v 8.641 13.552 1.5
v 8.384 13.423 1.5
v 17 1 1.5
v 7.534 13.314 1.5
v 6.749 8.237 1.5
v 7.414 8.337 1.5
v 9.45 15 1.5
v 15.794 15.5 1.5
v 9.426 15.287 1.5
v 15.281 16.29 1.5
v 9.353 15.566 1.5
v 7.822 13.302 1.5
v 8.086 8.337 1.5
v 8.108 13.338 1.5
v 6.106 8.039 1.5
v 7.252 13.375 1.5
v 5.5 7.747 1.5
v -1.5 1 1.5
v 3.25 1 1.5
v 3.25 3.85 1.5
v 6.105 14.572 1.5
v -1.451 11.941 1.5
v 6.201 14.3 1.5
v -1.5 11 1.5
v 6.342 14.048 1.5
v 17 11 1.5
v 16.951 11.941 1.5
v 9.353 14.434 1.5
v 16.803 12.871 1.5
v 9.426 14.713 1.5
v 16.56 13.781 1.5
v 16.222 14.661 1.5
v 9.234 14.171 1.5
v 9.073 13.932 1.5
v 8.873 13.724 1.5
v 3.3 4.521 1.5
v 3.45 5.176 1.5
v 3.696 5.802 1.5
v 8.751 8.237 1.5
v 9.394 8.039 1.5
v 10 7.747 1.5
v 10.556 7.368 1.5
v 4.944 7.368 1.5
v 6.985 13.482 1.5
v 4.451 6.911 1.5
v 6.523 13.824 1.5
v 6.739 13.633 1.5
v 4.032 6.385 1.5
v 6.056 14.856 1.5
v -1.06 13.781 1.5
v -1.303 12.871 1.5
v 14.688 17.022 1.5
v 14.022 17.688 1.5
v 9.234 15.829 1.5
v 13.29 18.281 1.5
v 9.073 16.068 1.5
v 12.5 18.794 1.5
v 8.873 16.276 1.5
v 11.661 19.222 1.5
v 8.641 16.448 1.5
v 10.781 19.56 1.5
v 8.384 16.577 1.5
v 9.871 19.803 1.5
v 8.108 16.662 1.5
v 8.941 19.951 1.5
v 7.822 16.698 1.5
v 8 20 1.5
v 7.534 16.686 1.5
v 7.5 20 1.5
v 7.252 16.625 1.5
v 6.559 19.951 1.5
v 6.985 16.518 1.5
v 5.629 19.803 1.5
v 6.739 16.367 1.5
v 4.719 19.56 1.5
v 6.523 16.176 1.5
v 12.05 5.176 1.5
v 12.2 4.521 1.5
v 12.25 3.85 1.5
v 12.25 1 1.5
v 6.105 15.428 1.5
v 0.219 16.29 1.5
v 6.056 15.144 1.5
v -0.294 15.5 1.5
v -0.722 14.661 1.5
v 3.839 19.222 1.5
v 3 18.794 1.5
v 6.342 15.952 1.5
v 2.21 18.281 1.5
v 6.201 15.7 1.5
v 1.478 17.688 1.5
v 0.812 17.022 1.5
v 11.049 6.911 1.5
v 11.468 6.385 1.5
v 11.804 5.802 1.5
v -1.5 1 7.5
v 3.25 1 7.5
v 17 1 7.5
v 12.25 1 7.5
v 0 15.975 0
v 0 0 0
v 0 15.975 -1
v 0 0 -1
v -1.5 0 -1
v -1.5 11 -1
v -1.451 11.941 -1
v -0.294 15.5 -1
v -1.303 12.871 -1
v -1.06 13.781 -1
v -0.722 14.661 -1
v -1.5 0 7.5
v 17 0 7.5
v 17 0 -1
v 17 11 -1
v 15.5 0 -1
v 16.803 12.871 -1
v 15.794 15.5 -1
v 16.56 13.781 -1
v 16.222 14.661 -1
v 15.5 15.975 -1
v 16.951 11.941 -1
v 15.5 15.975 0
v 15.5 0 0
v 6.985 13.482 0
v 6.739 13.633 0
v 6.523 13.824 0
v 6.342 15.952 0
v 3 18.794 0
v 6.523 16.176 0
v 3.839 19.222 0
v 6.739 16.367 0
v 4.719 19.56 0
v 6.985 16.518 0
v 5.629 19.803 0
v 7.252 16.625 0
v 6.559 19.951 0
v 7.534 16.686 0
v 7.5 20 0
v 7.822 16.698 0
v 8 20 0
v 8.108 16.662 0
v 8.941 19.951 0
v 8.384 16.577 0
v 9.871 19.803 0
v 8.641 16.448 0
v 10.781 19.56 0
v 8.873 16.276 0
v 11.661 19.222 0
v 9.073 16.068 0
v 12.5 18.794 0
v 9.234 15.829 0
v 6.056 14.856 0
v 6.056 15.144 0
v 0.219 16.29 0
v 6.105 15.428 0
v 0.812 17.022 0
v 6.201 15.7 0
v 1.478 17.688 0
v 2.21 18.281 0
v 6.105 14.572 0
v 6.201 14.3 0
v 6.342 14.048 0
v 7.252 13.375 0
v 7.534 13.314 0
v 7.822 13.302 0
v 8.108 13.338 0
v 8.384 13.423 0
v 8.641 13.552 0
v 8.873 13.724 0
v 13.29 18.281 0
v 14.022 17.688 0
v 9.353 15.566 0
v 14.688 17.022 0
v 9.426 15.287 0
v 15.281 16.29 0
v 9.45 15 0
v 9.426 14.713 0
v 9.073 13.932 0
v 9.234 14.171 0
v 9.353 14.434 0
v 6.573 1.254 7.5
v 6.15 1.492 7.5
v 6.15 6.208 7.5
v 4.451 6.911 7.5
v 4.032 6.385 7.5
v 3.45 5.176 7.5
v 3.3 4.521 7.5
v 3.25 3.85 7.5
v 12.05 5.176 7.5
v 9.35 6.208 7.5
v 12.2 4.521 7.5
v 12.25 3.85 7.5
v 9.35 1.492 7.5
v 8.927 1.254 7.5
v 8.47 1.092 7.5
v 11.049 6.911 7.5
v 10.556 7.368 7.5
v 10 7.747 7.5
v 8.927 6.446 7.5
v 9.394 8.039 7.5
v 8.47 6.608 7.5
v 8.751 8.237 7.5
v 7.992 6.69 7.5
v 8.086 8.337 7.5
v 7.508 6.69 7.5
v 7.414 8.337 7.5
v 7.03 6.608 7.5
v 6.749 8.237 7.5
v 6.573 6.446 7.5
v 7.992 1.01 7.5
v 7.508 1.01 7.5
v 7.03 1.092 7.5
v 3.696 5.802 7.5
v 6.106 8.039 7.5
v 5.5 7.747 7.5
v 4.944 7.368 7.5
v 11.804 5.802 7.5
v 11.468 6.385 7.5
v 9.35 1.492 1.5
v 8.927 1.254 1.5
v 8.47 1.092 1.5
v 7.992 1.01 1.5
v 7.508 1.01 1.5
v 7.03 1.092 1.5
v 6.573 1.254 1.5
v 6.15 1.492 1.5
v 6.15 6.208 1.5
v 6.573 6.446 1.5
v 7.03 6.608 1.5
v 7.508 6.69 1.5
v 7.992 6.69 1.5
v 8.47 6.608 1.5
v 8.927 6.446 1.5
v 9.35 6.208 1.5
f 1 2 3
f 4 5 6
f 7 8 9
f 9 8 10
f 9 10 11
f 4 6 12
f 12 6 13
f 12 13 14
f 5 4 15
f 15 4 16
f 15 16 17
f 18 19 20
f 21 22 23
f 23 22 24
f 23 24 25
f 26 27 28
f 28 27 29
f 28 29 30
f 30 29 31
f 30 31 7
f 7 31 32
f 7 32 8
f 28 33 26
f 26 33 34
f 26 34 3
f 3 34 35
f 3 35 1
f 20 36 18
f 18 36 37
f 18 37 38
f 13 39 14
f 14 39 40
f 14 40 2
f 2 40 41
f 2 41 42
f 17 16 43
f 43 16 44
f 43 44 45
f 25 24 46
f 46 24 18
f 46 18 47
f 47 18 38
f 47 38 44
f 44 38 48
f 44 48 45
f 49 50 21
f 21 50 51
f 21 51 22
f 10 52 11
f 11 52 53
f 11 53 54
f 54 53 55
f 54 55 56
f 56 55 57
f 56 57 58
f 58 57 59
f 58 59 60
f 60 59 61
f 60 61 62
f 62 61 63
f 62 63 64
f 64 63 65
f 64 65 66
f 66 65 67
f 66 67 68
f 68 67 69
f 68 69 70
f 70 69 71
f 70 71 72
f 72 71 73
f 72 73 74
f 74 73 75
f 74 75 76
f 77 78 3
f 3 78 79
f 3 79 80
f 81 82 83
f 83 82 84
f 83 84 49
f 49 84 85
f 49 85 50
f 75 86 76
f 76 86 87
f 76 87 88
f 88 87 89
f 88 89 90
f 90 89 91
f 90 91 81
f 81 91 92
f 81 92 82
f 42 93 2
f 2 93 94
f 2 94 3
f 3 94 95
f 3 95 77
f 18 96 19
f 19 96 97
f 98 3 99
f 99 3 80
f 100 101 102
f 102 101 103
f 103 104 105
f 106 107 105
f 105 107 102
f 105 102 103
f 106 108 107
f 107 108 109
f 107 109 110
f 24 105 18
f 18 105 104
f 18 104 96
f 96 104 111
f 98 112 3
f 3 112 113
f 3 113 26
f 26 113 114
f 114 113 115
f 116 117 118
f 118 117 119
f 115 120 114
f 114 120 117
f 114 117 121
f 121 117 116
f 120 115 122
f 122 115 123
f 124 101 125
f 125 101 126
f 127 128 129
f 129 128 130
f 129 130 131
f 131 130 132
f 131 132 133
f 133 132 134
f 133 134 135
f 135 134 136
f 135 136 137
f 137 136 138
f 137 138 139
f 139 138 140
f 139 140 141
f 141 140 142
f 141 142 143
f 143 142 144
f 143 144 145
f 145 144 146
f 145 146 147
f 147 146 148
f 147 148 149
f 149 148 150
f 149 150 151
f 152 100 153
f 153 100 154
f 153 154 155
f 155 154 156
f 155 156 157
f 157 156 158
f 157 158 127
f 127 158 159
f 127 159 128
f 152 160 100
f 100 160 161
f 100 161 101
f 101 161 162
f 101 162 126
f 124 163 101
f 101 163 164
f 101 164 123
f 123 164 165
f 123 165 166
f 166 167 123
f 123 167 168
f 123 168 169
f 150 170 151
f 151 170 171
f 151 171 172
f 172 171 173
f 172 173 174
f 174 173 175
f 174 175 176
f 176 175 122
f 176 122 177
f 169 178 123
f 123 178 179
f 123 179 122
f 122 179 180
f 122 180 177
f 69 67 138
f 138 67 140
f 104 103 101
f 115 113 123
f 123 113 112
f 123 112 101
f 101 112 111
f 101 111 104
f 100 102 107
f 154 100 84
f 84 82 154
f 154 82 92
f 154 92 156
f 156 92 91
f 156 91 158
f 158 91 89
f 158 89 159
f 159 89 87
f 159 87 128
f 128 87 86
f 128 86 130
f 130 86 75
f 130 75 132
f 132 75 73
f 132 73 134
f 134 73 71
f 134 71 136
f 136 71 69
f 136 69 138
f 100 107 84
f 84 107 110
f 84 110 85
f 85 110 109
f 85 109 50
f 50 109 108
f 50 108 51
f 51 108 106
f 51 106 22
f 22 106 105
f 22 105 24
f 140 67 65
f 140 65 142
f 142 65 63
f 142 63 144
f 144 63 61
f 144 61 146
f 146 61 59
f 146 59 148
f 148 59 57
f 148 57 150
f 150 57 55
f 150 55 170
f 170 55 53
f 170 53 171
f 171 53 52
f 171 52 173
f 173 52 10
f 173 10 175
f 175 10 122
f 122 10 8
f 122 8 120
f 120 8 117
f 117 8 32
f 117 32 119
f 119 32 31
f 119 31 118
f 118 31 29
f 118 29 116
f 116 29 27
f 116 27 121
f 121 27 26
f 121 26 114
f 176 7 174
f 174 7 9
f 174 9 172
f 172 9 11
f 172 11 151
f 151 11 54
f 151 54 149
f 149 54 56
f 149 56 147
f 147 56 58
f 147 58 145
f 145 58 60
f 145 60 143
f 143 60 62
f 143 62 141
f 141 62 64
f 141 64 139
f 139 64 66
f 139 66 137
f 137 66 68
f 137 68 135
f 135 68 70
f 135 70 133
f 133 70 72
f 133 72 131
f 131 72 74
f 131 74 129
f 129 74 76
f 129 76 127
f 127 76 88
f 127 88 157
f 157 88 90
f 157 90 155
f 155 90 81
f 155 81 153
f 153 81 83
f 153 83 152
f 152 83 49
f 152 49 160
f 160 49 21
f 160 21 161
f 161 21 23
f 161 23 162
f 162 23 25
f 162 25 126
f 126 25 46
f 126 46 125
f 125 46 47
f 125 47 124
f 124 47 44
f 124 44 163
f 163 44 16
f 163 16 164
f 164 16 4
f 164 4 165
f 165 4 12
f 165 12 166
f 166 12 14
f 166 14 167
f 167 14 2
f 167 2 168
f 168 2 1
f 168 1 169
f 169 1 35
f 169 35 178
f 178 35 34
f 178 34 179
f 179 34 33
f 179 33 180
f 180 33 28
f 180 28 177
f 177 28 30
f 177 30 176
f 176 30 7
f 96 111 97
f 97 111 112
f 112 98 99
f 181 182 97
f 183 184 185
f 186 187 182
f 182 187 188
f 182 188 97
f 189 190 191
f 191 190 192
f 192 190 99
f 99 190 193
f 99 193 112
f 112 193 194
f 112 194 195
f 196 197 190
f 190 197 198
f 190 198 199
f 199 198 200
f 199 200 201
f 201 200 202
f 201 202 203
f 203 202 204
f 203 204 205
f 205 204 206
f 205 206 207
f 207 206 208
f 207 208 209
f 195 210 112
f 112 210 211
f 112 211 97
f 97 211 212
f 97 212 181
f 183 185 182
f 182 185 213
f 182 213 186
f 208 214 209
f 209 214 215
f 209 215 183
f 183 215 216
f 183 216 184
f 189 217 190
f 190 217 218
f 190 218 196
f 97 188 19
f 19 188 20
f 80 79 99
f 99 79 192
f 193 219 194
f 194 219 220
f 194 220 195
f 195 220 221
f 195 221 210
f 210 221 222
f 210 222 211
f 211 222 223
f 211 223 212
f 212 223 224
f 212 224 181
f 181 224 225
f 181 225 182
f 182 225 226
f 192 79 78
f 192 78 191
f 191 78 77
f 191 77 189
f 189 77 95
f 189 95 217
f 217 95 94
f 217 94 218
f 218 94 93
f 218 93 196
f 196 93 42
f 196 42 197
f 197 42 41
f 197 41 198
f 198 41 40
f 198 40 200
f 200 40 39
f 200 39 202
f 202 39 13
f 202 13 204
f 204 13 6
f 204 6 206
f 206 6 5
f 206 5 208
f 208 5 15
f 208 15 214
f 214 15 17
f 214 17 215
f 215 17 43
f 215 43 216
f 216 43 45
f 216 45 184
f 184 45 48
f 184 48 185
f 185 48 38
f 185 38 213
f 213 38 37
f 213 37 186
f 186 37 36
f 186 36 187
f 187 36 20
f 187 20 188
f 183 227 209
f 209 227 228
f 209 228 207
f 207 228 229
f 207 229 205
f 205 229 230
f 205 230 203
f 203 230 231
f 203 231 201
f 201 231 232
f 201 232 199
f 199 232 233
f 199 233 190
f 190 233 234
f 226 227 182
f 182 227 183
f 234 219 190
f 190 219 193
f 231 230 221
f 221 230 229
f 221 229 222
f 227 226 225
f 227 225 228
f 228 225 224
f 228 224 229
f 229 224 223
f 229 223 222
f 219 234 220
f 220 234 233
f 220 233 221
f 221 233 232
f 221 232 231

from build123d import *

# Parameters (mm, degrees)
EXTRUDE_1_DEPTH     = 20
FILLET_1_R          = 9
SKETCH_2_R          = 1.7
CUT_EXTRUDE_1_DEPTH = 3.5
SKETCH_3_W          = 18.5
SKETCH_3_H          = 1
EXTRUDE_2_DEPTH     = 6
EXTRUDE_3_DEPTH     = 6


with BuildPart() as part:
    # Эскиз1 → Бобышка-Вытянуть1 (new body)
    with BuildSketch(Plane(origin=(0, 0, 0), x_dir=(1, 0, 0), z_dir=(0, 1, 0))):
        Polygon((0, 0), (15.5, 0), (15.5, 1), (17, 1), (17, -1.5), (-1.5, -1.5), (-1.5, 1), (0, 1), align=None)
    extrude(amount=EXTRUDE_1_DEPTH)

    # Скругление1
    fillet_1_edges = [part.edges().sort_by_distance(p)[0] for p in [
        (-1.5, 20, 0.25),
        (17, 20, 0.25),
    ]]
    fillet(fillet_1_edges, radius=FILLET_1_R)

    # Эскиз2 → Вырез-Вытянуть1 (cut, through all)
    with BuildSketch(Plane.XY.offset(1.5)):
        with Locations((7.75, 15)):
            Circle(SKETCH_2_R)
    extrude(amount=-CUT_EXTRUDE_1_DEPTH, mode=Mode.SUBTRACT)

    # Эскиз3 → Бобышка-Вытянуть2 (add)
    with BuildSketch(Plane.XY.offset(1.5)):
        with Locations((7.75, 0.5)):
            Rectangle(SKETCH_3_W, SKETCH_3_H)
    extrude(amount=EXTRUDE_2_DEPTH)

    # Эскиз4 → Бобышка-Вытянуть3 (add)
    with BuildSketch(Plane.XY.offset(1.5)):
        with BuildLine():
            Line((3.25, 3.85), (3.25, 1.023796375))
            Line((3.25, 1.023796375), (3.25, 0.775352043))
            Line((3.25, 0.775352043), (12.25, 0.775352043))
            Line((12.25, 0.775352043), (12.25, 1.023796375))
            Line((12.25, 1.023796375), (12.25, 3.85))
            ThreePointArc((12.25, 3.85), (7.75, 8.35), (3.25, 3.85))
        make_face()
        with BuildLine():
            Line((6.15, 6.208495283), (6.15, 1.491504717))
            ThreePointArc((6.15, 1.491504717), (7.75, 1), (9.35, 1.491504717))
            Line((9.35, 1.491504717), (9.35, 6.208495283))
            ThreePointArc((9.35, 6.208495283), (7.75, 6.7), (6.15, 6.208495283))
        make_face(mode=Mode.SUBTRACT)
    extrude(amount=EXTRUDE_3_DEPTH)


solid = part.part
